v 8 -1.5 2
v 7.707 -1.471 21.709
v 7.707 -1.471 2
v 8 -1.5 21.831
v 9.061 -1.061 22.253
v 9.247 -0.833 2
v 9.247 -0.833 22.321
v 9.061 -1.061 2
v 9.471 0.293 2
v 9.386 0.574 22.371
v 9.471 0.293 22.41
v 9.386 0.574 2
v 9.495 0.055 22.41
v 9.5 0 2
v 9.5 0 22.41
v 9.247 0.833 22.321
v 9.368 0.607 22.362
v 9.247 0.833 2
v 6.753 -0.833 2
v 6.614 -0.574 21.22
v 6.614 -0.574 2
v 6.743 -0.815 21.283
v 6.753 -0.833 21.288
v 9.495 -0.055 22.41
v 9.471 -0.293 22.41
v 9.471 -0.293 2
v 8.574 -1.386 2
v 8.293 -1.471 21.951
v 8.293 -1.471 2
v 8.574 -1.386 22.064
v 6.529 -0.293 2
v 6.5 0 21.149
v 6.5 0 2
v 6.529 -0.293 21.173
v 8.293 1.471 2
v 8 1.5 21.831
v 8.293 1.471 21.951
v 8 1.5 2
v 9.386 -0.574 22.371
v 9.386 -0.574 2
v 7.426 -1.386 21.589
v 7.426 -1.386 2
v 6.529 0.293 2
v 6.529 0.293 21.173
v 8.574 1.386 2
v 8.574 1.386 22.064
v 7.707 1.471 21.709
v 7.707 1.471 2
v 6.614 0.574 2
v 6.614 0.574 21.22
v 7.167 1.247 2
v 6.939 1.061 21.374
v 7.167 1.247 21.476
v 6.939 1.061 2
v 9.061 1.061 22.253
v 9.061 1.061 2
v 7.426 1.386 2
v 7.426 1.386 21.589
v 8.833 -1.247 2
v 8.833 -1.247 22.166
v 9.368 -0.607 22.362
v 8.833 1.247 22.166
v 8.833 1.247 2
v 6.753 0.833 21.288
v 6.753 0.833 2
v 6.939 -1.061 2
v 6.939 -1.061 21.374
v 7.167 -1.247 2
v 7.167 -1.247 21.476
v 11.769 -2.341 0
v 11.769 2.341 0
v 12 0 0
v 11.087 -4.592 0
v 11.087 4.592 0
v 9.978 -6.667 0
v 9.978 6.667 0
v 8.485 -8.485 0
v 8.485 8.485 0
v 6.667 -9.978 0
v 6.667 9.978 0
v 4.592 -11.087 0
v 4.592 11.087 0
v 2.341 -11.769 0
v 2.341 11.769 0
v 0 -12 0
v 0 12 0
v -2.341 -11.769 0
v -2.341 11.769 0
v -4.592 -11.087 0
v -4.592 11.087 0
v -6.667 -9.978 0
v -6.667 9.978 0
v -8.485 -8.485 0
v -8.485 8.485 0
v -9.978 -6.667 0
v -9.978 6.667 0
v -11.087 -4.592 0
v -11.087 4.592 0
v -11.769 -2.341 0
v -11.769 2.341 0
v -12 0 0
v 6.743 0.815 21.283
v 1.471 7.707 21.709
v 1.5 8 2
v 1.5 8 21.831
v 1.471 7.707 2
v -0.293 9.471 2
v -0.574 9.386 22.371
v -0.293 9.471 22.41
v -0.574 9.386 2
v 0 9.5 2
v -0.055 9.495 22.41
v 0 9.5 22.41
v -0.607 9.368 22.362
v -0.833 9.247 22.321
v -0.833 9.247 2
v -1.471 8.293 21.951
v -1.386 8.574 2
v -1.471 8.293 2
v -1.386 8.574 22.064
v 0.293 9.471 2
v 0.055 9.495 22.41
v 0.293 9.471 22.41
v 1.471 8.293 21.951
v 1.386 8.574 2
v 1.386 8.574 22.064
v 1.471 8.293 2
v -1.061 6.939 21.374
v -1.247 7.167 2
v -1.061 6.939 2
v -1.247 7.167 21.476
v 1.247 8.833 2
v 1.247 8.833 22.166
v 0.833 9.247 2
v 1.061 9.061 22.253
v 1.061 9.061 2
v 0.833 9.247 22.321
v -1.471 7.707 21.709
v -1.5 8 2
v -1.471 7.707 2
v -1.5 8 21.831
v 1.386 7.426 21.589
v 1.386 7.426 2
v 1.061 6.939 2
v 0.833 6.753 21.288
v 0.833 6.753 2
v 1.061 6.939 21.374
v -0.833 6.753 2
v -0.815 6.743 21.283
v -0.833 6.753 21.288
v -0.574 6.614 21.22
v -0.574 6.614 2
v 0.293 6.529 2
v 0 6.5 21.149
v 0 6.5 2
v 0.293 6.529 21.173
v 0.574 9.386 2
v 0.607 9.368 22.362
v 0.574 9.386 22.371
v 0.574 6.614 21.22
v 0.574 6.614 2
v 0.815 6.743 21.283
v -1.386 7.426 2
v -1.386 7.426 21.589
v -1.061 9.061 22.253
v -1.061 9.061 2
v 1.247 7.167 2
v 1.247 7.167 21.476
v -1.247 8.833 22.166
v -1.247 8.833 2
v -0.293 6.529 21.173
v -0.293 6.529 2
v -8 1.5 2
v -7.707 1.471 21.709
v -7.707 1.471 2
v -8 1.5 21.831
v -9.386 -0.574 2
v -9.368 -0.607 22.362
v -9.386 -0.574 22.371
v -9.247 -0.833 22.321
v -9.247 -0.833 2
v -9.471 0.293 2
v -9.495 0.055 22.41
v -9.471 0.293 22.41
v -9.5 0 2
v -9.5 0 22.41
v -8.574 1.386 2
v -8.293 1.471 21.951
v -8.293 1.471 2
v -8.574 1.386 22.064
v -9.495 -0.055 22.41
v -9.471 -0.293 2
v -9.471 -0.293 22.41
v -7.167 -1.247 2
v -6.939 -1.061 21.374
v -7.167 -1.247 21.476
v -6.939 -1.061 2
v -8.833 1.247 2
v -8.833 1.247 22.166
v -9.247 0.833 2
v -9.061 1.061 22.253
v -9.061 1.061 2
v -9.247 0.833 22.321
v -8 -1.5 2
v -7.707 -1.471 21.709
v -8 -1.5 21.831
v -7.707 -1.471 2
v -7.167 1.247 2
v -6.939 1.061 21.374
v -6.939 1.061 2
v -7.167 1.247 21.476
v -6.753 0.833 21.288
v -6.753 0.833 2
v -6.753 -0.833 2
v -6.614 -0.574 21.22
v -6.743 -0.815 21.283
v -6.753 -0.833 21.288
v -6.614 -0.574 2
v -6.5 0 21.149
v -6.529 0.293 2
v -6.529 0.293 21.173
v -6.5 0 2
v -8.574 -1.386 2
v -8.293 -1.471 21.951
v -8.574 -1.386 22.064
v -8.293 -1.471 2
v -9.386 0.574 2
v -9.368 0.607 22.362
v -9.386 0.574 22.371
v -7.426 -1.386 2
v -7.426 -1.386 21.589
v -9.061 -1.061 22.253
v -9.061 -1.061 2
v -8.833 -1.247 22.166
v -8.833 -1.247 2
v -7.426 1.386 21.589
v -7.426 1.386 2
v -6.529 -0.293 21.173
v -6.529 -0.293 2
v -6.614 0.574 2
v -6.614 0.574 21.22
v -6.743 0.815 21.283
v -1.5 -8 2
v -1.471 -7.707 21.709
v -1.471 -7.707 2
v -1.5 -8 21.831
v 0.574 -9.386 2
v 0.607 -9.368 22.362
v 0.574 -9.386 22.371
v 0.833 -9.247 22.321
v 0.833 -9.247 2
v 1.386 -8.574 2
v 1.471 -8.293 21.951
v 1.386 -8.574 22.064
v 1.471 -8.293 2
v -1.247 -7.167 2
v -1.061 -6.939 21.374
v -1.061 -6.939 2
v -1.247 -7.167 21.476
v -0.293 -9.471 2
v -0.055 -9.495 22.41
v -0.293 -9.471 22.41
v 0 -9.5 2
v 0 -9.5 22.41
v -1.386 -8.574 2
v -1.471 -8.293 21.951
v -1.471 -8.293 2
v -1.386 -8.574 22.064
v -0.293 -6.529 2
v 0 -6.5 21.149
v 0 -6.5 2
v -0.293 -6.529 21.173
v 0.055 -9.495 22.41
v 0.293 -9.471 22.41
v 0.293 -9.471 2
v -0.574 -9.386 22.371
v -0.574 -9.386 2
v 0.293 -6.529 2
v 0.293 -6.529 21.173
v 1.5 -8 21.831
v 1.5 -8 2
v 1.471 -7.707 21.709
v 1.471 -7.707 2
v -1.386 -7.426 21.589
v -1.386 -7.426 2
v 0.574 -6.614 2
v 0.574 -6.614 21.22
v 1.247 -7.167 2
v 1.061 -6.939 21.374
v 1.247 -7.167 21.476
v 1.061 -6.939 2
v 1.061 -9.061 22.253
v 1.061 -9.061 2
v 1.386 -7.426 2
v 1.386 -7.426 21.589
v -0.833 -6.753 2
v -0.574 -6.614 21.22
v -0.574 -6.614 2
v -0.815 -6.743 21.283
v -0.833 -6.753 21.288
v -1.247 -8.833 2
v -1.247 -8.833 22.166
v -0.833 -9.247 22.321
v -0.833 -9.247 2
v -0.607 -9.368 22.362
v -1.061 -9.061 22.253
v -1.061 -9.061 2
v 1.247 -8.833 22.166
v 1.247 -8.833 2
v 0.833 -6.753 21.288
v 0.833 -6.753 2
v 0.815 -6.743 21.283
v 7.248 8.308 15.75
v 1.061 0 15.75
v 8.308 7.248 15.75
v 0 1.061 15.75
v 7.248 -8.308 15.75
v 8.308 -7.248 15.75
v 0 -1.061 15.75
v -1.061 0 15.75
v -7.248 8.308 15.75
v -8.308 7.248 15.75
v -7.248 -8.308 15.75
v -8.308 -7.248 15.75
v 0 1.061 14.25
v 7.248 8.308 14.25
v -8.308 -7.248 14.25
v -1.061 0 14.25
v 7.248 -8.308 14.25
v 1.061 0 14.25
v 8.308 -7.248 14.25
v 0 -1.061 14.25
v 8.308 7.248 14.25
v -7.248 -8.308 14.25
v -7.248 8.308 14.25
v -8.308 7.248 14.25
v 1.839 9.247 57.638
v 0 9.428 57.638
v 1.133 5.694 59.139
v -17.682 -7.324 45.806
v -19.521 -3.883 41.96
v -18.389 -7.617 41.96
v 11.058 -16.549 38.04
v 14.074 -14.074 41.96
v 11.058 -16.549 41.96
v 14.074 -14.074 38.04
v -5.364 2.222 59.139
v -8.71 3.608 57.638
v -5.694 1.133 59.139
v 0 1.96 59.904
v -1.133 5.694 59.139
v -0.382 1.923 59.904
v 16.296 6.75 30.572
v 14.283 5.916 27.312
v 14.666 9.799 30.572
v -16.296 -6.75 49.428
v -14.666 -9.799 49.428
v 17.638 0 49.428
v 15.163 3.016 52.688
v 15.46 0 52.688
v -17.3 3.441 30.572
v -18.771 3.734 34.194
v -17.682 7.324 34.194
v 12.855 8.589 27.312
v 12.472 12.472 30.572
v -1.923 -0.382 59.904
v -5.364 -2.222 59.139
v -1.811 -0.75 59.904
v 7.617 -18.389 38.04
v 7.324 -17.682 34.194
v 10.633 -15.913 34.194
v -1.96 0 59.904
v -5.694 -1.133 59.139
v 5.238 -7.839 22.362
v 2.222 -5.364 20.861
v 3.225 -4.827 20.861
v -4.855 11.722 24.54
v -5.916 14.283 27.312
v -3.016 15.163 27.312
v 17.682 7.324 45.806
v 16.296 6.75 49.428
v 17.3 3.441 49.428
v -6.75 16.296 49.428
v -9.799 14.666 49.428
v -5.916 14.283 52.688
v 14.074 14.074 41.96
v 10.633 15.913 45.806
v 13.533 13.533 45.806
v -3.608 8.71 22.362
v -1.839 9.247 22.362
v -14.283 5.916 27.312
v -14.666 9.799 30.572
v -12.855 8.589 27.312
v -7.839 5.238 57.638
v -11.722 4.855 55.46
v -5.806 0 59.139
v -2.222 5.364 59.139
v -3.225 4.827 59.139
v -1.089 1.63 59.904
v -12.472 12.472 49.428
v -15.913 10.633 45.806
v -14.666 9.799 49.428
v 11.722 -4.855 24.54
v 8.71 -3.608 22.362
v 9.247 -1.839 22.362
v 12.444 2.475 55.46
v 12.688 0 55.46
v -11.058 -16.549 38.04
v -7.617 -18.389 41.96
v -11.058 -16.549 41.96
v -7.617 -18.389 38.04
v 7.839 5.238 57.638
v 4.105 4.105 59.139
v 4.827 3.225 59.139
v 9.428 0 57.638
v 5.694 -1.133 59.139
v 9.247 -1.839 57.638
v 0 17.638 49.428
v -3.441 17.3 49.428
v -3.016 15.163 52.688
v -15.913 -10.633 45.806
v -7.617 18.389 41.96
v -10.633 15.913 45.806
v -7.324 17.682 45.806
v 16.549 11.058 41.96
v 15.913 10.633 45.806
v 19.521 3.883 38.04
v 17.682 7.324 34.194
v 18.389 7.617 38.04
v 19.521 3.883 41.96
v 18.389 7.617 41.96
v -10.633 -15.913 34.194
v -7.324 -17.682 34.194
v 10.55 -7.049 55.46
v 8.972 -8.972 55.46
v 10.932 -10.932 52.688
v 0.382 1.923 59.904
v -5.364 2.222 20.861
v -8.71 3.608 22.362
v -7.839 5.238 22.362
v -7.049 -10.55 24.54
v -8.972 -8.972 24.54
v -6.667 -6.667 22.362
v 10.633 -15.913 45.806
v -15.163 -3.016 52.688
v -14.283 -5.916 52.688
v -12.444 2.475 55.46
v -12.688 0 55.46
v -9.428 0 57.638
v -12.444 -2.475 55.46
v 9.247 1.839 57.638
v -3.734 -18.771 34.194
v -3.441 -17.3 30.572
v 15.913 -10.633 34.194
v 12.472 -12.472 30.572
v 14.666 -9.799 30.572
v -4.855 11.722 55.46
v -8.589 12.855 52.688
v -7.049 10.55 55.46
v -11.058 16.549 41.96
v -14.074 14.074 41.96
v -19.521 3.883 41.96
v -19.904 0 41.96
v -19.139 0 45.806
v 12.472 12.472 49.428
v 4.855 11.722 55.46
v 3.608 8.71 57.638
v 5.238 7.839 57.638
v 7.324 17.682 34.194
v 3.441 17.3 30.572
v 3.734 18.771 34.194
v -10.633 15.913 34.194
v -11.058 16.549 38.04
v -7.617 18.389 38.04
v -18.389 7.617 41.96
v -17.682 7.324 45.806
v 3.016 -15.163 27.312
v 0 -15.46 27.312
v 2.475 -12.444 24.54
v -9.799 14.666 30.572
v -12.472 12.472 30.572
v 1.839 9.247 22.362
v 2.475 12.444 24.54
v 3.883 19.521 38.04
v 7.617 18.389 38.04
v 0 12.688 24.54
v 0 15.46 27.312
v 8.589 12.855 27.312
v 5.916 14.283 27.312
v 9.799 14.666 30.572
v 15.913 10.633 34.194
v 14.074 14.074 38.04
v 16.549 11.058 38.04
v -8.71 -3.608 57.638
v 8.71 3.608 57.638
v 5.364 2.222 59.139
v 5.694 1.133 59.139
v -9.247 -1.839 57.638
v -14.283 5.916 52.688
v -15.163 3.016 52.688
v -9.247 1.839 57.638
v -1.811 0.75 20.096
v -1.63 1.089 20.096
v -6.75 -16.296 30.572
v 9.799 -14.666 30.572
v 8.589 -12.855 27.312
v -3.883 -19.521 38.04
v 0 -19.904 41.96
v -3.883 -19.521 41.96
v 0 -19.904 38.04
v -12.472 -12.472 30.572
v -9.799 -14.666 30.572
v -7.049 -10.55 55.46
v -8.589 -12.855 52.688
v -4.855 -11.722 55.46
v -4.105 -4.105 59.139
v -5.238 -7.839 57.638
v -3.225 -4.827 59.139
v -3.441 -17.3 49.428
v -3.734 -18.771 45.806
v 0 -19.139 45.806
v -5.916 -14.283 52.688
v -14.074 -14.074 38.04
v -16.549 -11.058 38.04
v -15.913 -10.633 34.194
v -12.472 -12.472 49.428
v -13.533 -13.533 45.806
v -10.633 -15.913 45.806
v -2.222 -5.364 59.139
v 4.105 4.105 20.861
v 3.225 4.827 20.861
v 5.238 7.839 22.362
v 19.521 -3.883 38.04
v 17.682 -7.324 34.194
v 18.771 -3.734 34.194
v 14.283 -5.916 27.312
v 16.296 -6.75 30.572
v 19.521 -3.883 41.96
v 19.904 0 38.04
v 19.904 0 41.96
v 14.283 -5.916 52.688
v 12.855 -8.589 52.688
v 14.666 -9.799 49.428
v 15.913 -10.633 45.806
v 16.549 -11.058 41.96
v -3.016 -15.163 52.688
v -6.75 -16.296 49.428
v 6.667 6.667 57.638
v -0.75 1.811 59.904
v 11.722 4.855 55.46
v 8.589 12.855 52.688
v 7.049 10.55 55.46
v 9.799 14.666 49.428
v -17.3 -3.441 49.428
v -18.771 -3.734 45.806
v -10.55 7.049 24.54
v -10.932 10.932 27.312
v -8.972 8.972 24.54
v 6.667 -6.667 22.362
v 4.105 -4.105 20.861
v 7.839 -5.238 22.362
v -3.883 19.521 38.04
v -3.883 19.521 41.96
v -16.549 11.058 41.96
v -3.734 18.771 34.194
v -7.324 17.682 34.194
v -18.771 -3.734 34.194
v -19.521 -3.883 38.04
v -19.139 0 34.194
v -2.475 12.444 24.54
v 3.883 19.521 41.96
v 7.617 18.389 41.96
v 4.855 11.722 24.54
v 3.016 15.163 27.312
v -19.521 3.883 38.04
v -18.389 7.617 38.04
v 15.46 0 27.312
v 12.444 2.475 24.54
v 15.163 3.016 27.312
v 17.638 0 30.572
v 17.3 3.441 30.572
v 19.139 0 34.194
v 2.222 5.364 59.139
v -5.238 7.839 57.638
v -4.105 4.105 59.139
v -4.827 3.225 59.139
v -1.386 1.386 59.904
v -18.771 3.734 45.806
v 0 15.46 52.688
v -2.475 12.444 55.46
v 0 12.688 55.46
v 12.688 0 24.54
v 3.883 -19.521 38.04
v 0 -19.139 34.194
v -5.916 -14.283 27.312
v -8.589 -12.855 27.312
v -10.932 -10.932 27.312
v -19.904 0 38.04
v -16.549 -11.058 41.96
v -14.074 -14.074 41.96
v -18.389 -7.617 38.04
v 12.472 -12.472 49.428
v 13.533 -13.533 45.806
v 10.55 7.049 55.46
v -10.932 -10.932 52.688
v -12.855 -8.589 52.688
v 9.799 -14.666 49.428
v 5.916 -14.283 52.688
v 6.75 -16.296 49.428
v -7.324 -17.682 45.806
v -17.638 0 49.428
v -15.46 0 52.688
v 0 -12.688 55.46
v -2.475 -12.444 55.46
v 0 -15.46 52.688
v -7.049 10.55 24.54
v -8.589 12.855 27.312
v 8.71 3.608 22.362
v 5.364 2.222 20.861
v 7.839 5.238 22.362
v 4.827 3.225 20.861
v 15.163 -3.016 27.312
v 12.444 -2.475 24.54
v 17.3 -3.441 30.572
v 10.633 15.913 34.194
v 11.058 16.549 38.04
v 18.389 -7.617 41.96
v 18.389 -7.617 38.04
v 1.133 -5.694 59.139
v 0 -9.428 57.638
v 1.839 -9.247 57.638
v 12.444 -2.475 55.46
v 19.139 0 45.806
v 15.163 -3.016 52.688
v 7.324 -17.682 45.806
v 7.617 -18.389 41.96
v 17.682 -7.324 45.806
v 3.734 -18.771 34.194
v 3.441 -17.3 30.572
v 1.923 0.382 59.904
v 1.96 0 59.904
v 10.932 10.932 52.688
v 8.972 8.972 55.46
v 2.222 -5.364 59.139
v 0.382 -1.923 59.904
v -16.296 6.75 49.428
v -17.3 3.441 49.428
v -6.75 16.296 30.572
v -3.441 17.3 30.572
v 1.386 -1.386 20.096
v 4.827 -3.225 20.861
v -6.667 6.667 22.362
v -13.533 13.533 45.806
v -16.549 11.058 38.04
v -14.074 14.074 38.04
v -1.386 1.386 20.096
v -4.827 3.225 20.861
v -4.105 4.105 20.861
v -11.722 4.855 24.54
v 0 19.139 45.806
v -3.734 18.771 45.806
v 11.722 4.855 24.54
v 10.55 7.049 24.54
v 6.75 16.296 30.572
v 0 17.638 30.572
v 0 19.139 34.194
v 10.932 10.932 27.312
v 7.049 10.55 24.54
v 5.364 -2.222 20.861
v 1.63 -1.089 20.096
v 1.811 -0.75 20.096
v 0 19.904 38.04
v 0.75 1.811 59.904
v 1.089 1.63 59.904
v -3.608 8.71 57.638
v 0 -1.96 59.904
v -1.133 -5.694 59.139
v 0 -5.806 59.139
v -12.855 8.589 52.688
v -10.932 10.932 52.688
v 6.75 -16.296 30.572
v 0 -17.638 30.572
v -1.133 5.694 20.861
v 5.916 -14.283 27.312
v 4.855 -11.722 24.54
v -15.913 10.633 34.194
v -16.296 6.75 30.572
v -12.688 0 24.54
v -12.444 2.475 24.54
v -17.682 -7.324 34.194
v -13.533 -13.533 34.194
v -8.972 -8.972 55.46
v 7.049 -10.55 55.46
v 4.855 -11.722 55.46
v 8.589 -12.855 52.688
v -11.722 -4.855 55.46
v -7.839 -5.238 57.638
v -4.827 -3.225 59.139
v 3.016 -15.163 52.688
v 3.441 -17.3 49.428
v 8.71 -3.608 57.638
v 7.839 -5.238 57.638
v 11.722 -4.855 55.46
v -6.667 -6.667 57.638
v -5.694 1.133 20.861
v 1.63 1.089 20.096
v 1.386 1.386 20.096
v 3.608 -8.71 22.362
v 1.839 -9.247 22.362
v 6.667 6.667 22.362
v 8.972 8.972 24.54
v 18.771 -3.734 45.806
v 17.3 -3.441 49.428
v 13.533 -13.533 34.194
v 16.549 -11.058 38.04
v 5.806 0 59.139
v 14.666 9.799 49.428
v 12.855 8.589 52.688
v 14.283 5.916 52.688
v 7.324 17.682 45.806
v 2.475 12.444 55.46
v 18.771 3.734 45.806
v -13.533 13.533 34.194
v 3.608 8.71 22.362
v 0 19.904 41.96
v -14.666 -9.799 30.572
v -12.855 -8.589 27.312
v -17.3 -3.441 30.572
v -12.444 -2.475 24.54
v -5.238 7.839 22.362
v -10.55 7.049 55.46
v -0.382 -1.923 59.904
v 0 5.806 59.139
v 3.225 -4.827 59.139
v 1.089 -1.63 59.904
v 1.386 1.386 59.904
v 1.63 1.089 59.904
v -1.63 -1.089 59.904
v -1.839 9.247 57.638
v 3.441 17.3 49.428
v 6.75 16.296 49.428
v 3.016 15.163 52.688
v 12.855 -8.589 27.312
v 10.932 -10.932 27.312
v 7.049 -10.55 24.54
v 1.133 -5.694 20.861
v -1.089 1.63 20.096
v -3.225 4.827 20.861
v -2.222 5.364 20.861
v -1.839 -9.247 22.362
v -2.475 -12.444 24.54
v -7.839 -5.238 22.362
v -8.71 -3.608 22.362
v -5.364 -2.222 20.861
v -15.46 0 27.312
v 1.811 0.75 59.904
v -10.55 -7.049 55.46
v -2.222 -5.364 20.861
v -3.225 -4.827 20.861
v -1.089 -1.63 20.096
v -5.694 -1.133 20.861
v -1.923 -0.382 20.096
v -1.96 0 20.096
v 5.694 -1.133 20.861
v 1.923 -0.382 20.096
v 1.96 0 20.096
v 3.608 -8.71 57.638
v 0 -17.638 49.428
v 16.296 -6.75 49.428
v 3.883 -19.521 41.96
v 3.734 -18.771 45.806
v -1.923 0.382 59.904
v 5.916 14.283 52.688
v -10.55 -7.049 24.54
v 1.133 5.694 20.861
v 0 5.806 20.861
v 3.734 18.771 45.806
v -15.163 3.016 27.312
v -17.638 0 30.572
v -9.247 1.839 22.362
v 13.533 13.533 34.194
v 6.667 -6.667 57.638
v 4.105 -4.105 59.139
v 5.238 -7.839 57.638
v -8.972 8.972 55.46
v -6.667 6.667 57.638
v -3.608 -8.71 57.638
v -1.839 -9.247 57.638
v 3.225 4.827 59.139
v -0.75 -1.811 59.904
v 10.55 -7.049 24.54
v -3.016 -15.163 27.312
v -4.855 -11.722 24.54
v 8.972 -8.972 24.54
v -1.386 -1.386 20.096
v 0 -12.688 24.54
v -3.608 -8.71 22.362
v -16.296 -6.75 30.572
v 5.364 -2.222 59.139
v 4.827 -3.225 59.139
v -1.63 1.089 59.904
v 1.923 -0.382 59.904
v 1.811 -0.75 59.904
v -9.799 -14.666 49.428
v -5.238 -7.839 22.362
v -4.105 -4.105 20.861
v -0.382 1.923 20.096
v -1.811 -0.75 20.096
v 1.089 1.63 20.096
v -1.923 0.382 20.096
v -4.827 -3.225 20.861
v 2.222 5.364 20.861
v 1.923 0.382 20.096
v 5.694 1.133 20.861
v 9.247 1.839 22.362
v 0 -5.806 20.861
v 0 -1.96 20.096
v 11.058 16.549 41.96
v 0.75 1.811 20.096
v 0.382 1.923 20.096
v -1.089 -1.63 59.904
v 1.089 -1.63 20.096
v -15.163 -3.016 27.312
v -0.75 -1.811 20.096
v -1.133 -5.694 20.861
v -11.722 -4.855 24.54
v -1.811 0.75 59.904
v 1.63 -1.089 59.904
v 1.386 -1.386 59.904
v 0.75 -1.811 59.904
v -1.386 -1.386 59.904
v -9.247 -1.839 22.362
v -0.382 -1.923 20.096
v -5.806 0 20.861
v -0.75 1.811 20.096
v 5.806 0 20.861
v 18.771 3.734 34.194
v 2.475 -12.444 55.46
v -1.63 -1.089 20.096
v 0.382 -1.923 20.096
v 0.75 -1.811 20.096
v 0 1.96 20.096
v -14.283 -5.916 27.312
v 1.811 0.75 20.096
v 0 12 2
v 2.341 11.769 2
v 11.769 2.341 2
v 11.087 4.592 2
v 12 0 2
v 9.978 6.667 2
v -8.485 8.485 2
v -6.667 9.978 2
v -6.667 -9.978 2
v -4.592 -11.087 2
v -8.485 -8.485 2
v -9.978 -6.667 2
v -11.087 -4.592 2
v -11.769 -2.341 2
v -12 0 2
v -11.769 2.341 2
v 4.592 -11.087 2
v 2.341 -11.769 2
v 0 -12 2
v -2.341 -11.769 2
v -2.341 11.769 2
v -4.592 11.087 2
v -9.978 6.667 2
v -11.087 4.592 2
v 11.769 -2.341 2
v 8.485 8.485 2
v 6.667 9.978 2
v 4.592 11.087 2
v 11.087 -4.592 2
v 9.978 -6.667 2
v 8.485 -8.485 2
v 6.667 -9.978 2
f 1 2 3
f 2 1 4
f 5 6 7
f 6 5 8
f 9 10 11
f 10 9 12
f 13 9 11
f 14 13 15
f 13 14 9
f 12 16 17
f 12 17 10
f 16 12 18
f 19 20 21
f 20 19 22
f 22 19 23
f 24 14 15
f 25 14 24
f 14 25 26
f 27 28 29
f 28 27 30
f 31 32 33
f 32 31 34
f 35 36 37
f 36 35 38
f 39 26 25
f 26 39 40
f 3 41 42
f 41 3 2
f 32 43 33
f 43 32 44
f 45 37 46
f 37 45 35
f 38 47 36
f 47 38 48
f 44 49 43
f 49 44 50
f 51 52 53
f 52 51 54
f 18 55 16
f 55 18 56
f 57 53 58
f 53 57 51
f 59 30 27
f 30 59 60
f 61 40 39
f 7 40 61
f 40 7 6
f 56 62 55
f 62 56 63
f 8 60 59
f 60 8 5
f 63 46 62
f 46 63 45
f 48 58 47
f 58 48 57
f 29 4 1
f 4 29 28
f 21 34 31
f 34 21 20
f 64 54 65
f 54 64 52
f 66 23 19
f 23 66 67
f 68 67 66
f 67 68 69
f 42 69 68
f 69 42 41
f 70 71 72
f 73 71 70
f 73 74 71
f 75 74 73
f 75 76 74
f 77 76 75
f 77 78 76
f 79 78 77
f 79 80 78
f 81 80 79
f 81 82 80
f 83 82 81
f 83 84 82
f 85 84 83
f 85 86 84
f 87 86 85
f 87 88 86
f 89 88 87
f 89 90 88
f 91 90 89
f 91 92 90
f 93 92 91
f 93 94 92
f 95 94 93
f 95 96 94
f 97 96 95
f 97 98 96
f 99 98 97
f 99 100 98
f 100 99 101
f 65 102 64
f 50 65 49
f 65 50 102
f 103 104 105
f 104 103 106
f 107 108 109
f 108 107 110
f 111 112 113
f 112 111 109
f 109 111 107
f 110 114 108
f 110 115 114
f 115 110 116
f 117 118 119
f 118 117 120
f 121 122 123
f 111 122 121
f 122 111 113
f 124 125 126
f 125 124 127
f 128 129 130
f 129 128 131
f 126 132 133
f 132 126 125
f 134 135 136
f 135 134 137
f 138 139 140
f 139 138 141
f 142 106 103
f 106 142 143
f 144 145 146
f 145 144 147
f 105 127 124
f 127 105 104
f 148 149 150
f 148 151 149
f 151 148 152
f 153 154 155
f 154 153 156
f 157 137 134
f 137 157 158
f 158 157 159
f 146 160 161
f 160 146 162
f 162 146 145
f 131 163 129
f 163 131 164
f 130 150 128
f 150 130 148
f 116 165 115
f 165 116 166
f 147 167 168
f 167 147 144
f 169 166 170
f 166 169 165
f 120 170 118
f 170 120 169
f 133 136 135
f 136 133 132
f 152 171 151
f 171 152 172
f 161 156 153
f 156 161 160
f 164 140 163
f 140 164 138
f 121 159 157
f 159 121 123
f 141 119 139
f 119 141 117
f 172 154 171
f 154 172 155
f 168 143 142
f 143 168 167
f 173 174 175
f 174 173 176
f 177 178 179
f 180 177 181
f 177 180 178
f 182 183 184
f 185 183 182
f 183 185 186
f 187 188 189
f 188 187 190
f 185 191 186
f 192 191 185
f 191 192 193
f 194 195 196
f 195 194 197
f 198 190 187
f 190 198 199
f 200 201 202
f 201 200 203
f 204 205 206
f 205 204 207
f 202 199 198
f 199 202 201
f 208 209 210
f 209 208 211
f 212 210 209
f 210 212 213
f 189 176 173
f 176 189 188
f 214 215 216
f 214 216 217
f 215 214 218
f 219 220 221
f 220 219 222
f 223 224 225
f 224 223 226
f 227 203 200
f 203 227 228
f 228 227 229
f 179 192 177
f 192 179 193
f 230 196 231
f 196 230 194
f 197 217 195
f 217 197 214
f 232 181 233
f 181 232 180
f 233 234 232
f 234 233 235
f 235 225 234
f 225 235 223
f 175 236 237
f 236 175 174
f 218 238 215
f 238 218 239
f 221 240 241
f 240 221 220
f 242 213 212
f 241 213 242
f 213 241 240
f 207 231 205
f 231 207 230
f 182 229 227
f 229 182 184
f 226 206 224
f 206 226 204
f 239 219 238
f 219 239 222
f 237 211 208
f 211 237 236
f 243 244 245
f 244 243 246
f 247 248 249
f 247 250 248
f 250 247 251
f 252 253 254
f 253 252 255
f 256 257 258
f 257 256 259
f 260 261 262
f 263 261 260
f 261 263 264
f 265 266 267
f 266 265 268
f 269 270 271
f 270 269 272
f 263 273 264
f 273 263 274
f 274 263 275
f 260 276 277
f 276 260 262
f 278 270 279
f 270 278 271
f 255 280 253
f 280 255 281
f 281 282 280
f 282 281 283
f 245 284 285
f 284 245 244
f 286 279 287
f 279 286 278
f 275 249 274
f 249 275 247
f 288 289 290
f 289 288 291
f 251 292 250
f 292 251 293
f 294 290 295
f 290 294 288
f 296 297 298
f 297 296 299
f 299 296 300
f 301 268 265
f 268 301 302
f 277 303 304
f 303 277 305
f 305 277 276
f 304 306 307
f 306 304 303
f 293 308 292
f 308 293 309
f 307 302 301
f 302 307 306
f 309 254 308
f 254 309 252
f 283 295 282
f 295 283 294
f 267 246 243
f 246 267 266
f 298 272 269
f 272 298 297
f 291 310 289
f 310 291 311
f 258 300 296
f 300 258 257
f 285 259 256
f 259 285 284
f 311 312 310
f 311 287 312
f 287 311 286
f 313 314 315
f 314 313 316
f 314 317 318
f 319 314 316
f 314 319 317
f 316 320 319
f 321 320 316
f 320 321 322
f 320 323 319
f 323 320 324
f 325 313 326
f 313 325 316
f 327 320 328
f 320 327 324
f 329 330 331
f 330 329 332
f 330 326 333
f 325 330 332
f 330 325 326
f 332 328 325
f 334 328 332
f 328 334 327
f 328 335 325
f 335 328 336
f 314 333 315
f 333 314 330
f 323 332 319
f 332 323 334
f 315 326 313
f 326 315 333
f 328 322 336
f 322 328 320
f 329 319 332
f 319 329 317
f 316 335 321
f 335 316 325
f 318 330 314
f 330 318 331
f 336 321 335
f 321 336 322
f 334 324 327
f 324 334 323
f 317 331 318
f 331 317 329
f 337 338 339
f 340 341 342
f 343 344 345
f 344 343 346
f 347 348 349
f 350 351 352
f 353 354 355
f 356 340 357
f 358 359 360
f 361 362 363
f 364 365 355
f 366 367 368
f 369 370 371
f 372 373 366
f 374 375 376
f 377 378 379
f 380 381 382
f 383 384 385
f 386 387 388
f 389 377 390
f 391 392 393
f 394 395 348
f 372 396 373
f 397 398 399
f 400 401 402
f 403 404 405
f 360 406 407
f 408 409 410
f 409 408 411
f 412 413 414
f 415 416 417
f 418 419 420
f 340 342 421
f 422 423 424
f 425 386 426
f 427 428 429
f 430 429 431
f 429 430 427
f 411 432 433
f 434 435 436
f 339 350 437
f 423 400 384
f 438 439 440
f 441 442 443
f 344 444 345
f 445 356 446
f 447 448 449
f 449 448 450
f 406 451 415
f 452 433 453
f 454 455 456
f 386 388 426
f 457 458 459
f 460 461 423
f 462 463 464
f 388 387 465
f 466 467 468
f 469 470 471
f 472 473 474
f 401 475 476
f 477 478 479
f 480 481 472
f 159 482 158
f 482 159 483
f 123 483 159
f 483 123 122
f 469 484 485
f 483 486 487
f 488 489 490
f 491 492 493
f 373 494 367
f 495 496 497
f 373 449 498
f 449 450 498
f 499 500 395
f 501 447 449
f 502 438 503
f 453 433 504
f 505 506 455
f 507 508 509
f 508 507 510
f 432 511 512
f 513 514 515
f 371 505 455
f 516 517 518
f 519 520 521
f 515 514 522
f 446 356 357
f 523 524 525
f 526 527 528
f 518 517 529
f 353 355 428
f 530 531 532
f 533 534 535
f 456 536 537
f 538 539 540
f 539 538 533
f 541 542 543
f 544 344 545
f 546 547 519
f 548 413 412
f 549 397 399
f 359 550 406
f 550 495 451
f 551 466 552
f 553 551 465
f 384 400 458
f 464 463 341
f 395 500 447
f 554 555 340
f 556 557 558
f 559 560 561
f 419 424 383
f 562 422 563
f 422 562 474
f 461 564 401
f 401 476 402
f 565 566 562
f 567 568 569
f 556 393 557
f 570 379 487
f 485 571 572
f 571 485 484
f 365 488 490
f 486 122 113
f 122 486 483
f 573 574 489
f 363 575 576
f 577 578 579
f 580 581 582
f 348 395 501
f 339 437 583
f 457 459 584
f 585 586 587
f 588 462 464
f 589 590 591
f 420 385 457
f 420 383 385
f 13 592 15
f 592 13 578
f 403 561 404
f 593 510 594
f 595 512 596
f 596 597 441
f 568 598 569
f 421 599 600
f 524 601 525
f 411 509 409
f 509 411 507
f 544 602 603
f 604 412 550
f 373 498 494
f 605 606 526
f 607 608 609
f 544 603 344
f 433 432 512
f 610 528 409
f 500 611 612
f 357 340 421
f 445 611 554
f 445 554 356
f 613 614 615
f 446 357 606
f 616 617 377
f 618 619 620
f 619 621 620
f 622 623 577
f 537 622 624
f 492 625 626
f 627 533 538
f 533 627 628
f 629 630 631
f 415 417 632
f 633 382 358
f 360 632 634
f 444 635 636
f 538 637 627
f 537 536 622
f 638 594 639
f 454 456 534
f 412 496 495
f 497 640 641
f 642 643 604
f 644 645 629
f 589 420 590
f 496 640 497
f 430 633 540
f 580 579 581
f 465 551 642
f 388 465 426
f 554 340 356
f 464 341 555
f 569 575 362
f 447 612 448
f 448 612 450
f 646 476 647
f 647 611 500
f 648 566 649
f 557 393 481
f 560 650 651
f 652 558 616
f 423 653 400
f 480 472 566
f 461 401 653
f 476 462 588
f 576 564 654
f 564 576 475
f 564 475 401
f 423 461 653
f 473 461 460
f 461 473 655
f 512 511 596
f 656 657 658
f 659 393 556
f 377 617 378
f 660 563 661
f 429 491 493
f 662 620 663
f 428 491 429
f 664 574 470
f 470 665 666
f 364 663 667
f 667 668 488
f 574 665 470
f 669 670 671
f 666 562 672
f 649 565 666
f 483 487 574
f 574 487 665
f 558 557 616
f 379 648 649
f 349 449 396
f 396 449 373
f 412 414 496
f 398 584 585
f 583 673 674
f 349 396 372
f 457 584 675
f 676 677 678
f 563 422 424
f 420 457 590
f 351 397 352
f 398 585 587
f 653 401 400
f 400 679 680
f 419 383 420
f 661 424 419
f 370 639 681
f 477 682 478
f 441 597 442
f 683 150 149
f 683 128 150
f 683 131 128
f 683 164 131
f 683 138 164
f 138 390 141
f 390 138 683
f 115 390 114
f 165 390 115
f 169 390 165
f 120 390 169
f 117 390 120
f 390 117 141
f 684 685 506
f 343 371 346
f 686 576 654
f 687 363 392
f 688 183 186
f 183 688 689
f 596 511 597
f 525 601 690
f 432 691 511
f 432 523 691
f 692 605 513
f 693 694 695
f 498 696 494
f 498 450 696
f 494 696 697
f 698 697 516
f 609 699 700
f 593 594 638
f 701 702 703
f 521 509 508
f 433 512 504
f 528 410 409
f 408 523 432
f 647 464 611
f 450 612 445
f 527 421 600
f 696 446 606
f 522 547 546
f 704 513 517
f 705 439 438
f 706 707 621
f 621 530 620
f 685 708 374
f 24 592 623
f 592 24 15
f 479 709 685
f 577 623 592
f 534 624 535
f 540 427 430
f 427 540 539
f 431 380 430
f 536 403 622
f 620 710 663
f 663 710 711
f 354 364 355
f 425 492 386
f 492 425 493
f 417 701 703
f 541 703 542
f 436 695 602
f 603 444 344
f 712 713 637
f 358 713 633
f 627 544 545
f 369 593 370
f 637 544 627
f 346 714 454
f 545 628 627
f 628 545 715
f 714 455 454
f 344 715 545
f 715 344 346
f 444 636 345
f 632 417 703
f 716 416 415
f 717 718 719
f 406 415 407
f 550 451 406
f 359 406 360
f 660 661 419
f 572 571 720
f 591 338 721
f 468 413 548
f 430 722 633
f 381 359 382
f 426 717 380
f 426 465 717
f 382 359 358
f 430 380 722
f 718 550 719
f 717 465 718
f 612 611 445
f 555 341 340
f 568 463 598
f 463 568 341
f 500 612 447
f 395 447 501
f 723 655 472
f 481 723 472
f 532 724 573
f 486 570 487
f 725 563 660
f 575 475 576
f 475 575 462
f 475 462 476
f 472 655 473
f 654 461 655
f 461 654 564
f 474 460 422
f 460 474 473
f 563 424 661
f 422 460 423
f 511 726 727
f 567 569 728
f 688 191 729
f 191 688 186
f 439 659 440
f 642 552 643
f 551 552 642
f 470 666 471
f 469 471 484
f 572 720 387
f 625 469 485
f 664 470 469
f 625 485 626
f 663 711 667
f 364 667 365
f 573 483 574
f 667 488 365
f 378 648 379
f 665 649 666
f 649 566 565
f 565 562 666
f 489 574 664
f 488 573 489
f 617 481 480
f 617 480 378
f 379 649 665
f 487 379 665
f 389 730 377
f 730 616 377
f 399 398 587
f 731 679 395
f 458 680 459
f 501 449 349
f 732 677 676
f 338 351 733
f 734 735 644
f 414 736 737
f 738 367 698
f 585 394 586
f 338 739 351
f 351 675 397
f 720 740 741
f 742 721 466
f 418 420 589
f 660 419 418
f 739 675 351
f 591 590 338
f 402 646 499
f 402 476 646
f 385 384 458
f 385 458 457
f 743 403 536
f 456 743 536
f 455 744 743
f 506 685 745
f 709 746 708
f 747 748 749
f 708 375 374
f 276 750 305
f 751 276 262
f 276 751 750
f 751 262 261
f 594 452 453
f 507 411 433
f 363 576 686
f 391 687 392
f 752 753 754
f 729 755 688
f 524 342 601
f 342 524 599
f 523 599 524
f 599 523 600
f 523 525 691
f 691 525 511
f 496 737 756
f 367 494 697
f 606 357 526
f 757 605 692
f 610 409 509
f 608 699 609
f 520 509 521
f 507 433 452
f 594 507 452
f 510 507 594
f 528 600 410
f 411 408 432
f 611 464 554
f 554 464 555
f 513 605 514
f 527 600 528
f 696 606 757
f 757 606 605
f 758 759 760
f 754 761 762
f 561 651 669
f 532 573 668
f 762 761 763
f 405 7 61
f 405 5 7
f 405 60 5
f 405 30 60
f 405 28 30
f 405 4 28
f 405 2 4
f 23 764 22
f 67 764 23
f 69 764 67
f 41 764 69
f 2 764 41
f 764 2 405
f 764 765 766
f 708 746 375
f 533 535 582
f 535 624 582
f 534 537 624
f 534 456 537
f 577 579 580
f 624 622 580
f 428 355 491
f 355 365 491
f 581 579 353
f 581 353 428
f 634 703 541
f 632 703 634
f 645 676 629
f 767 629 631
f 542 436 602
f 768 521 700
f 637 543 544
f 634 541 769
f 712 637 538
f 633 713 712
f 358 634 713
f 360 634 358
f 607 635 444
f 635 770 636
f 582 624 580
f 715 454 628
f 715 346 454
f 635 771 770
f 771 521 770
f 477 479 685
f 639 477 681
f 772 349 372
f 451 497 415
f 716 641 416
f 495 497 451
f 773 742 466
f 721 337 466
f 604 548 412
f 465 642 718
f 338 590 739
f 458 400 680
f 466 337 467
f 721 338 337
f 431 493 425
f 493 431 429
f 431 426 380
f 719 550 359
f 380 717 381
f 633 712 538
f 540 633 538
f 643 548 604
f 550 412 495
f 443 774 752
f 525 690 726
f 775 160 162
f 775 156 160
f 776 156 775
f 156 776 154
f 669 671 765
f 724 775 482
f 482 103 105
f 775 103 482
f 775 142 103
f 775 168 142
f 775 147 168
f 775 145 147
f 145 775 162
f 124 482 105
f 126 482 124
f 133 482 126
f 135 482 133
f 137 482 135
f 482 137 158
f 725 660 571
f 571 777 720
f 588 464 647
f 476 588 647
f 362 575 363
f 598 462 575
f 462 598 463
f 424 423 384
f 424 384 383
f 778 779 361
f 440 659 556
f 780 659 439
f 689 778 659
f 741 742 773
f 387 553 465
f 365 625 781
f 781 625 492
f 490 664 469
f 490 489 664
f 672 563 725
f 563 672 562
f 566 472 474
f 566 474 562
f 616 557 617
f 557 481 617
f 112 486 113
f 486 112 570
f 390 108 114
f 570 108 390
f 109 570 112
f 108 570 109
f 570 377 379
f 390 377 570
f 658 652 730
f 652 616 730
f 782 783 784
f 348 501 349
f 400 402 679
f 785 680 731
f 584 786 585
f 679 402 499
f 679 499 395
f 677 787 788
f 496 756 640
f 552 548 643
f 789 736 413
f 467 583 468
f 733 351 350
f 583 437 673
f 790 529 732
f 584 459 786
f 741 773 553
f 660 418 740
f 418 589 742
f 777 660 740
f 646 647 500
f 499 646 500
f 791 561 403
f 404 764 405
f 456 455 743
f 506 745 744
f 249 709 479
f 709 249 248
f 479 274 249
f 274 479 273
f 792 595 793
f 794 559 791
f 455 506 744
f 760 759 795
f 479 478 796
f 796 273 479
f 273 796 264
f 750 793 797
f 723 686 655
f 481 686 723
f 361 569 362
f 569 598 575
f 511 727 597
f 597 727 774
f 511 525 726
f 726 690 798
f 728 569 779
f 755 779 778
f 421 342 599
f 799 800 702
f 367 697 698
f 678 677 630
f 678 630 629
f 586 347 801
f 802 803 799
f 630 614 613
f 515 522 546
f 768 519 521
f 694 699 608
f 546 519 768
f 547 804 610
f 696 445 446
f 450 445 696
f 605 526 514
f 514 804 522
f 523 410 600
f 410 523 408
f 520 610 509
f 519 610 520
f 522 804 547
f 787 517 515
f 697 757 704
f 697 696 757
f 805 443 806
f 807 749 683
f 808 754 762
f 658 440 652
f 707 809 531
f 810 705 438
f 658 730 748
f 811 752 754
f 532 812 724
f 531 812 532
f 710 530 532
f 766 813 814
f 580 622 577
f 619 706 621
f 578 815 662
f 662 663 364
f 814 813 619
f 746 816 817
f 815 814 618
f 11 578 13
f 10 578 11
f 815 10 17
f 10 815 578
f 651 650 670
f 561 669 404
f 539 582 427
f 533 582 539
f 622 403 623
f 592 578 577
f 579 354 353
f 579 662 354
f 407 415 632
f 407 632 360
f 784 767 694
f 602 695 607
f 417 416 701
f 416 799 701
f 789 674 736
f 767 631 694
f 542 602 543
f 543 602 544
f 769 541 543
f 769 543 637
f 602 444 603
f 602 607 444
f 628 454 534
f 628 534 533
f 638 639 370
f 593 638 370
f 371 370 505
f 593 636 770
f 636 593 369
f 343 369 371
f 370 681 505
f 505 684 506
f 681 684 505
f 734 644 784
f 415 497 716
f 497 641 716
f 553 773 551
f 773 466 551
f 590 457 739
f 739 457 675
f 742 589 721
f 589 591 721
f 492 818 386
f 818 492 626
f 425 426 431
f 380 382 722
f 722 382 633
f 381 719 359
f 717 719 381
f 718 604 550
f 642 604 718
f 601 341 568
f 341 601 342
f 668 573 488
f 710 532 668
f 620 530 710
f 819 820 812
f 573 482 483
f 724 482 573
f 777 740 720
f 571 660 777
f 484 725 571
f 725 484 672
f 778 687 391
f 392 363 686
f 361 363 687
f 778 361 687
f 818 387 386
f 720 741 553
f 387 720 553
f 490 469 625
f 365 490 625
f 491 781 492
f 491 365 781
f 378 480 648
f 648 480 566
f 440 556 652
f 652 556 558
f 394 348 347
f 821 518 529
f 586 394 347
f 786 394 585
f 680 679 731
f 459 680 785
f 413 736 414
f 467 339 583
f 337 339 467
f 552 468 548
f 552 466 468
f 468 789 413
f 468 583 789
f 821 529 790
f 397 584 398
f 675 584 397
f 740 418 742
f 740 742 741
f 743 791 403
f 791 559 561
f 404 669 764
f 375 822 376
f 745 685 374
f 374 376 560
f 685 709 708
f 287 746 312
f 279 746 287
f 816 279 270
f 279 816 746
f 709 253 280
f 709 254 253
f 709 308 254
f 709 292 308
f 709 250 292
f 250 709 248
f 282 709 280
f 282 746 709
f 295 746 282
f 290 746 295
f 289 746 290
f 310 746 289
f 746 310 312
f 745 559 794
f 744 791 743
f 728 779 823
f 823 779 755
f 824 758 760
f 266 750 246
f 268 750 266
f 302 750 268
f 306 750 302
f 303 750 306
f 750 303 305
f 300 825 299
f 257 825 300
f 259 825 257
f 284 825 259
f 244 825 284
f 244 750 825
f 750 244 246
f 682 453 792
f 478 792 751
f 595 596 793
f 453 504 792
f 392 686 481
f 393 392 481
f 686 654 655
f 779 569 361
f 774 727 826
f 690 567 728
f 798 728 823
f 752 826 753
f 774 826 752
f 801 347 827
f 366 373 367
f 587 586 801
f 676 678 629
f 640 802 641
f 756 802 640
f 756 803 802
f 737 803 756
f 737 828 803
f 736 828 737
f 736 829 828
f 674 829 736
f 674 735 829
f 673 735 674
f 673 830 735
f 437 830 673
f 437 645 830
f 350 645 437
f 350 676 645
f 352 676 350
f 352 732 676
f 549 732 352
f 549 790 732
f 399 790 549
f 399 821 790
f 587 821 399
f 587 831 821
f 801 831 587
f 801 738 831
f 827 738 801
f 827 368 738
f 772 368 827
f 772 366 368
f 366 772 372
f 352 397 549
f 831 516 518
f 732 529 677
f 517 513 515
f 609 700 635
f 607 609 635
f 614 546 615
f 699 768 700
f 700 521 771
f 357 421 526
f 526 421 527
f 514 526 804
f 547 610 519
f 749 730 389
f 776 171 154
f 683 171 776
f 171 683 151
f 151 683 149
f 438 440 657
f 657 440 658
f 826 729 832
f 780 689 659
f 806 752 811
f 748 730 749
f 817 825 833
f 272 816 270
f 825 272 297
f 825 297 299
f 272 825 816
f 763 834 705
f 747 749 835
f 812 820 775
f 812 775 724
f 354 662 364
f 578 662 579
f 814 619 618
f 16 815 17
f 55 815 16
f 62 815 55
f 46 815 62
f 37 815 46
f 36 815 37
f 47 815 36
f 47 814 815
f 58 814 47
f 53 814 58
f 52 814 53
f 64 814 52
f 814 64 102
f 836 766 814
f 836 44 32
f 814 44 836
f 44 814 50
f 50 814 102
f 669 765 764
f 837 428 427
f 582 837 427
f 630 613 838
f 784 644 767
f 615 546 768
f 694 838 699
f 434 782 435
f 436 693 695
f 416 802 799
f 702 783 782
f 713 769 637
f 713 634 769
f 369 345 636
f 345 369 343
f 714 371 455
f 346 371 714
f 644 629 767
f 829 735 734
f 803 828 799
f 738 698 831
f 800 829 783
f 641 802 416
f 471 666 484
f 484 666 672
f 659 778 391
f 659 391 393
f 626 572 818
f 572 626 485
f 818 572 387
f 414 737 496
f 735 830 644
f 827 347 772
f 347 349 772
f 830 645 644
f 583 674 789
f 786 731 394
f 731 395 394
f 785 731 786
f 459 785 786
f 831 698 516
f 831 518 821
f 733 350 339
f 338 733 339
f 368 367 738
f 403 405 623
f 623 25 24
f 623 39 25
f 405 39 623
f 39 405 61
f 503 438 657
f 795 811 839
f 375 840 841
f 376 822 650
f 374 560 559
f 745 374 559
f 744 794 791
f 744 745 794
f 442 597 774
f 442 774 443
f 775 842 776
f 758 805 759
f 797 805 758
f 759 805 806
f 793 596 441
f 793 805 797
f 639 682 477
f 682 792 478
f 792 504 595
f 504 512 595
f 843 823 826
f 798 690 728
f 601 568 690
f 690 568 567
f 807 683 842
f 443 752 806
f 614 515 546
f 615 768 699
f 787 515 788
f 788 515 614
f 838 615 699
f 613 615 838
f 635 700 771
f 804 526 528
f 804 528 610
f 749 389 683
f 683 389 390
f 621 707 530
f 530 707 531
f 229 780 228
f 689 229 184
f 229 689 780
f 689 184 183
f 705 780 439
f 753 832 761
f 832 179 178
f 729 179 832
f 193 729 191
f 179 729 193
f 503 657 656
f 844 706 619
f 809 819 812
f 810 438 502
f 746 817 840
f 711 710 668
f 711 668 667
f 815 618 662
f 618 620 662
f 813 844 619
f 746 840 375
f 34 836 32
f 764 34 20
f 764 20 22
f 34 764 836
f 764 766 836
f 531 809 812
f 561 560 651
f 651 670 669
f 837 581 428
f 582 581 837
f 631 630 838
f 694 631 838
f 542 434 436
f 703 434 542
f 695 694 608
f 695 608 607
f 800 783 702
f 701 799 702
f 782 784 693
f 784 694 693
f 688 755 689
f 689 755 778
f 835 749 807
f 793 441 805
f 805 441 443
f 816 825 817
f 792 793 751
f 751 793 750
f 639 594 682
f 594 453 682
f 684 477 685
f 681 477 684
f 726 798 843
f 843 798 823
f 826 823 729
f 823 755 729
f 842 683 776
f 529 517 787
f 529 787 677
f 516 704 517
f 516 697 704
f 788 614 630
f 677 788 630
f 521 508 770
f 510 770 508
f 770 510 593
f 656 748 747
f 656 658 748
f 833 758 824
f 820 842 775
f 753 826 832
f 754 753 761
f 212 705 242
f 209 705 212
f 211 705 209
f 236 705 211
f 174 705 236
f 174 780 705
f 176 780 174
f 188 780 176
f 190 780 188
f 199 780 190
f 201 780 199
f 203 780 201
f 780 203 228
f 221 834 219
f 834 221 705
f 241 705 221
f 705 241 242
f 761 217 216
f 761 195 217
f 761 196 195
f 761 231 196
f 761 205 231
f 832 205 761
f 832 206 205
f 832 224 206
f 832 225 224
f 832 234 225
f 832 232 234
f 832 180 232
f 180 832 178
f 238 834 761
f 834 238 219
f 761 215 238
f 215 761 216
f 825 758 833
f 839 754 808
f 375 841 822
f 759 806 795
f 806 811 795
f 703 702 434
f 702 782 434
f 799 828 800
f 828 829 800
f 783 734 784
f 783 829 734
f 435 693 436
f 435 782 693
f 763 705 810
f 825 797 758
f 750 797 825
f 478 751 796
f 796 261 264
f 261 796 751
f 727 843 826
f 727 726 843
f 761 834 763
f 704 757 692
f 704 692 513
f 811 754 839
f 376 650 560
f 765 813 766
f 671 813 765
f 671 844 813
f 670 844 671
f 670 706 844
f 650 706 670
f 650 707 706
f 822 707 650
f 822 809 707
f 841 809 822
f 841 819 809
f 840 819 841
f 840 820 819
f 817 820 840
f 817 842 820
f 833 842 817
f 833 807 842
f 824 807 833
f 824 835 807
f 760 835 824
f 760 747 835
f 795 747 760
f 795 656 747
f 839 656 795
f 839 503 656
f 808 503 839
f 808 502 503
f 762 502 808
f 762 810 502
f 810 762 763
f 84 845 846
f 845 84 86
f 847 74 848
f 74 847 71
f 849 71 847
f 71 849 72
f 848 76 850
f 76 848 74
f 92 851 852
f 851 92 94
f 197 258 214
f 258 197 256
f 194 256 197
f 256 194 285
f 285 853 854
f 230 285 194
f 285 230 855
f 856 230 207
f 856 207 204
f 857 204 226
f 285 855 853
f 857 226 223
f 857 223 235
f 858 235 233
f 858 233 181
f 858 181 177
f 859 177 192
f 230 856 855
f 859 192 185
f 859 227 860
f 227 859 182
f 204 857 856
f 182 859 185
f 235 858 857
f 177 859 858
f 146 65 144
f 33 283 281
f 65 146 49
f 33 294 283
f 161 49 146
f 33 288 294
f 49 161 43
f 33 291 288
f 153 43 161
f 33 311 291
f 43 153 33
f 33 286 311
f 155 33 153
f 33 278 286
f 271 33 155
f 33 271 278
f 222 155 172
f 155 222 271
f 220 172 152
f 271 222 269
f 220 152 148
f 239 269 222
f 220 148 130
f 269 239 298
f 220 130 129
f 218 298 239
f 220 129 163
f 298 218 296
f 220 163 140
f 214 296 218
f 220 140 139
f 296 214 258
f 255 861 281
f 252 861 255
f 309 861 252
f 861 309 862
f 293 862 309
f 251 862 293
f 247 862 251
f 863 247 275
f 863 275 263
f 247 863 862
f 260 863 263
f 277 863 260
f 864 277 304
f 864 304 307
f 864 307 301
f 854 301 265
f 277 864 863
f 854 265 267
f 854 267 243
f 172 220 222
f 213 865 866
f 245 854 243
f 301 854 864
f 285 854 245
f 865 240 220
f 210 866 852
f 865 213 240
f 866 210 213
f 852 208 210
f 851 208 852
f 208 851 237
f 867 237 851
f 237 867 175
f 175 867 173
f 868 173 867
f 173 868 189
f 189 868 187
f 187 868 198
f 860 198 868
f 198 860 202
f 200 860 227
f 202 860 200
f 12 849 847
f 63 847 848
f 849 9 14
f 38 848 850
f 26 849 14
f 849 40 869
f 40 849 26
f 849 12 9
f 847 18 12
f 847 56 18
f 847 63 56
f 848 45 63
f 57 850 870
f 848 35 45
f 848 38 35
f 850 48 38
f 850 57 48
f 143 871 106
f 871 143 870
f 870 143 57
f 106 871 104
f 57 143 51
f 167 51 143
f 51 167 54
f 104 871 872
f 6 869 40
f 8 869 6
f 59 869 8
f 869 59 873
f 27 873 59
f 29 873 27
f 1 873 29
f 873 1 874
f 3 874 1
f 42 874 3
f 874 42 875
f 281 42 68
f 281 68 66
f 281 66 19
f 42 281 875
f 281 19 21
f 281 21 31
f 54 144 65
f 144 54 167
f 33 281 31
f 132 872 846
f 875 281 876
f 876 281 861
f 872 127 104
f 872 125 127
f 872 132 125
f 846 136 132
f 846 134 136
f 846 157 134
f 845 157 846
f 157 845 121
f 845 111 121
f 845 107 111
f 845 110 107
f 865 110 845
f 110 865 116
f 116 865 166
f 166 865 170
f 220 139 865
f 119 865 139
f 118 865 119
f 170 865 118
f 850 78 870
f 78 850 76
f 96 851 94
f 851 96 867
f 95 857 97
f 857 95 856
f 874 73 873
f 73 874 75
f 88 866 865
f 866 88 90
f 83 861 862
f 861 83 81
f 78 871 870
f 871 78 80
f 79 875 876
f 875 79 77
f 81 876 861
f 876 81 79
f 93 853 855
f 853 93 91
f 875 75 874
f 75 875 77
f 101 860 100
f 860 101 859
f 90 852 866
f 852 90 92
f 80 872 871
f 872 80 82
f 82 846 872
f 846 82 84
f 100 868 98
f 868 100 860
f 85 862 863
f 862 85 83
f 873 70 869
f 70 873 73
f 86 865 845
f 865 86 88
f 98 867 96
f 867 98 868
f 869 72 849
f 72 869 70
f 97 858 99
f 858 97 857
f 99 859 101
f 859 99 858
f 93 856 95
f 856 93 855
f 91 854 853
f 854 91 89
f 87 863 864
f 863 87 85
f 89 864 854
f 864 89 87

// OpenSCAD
$fn = 32;

// Water Tower - Spherical tank on metal stilts
module water_tower() {
    // Main Tank (Sphere)
    translate([0, 0, 40])
    sphere(r = 20);
    
    // Tank Base/Connection (Cylinder)
    translate([0, 0, 25])
    cylinder(h = 15, r1 = 10, r2 = 5);

    // Stilts (4 legs)
    for (i = [0 : 3]) {
        rotate([0, 0, i * 90])
        translate([8, 0, 0])
        cylinder(h = 30, r = 1.5);
    }

    // Cross braces (Cubes)
    for (i = [0 : 3]) {
        rotate([0, 0, i * 90 + 45])
        translate([5, 0, 15])
        cube([12, 1.5, 1.5], center = true);
    }
    
    // Bottom Base Plate
    translate([0, 0, 0])
    cylinder(h = 2, r = 12);
}

water_tower();
